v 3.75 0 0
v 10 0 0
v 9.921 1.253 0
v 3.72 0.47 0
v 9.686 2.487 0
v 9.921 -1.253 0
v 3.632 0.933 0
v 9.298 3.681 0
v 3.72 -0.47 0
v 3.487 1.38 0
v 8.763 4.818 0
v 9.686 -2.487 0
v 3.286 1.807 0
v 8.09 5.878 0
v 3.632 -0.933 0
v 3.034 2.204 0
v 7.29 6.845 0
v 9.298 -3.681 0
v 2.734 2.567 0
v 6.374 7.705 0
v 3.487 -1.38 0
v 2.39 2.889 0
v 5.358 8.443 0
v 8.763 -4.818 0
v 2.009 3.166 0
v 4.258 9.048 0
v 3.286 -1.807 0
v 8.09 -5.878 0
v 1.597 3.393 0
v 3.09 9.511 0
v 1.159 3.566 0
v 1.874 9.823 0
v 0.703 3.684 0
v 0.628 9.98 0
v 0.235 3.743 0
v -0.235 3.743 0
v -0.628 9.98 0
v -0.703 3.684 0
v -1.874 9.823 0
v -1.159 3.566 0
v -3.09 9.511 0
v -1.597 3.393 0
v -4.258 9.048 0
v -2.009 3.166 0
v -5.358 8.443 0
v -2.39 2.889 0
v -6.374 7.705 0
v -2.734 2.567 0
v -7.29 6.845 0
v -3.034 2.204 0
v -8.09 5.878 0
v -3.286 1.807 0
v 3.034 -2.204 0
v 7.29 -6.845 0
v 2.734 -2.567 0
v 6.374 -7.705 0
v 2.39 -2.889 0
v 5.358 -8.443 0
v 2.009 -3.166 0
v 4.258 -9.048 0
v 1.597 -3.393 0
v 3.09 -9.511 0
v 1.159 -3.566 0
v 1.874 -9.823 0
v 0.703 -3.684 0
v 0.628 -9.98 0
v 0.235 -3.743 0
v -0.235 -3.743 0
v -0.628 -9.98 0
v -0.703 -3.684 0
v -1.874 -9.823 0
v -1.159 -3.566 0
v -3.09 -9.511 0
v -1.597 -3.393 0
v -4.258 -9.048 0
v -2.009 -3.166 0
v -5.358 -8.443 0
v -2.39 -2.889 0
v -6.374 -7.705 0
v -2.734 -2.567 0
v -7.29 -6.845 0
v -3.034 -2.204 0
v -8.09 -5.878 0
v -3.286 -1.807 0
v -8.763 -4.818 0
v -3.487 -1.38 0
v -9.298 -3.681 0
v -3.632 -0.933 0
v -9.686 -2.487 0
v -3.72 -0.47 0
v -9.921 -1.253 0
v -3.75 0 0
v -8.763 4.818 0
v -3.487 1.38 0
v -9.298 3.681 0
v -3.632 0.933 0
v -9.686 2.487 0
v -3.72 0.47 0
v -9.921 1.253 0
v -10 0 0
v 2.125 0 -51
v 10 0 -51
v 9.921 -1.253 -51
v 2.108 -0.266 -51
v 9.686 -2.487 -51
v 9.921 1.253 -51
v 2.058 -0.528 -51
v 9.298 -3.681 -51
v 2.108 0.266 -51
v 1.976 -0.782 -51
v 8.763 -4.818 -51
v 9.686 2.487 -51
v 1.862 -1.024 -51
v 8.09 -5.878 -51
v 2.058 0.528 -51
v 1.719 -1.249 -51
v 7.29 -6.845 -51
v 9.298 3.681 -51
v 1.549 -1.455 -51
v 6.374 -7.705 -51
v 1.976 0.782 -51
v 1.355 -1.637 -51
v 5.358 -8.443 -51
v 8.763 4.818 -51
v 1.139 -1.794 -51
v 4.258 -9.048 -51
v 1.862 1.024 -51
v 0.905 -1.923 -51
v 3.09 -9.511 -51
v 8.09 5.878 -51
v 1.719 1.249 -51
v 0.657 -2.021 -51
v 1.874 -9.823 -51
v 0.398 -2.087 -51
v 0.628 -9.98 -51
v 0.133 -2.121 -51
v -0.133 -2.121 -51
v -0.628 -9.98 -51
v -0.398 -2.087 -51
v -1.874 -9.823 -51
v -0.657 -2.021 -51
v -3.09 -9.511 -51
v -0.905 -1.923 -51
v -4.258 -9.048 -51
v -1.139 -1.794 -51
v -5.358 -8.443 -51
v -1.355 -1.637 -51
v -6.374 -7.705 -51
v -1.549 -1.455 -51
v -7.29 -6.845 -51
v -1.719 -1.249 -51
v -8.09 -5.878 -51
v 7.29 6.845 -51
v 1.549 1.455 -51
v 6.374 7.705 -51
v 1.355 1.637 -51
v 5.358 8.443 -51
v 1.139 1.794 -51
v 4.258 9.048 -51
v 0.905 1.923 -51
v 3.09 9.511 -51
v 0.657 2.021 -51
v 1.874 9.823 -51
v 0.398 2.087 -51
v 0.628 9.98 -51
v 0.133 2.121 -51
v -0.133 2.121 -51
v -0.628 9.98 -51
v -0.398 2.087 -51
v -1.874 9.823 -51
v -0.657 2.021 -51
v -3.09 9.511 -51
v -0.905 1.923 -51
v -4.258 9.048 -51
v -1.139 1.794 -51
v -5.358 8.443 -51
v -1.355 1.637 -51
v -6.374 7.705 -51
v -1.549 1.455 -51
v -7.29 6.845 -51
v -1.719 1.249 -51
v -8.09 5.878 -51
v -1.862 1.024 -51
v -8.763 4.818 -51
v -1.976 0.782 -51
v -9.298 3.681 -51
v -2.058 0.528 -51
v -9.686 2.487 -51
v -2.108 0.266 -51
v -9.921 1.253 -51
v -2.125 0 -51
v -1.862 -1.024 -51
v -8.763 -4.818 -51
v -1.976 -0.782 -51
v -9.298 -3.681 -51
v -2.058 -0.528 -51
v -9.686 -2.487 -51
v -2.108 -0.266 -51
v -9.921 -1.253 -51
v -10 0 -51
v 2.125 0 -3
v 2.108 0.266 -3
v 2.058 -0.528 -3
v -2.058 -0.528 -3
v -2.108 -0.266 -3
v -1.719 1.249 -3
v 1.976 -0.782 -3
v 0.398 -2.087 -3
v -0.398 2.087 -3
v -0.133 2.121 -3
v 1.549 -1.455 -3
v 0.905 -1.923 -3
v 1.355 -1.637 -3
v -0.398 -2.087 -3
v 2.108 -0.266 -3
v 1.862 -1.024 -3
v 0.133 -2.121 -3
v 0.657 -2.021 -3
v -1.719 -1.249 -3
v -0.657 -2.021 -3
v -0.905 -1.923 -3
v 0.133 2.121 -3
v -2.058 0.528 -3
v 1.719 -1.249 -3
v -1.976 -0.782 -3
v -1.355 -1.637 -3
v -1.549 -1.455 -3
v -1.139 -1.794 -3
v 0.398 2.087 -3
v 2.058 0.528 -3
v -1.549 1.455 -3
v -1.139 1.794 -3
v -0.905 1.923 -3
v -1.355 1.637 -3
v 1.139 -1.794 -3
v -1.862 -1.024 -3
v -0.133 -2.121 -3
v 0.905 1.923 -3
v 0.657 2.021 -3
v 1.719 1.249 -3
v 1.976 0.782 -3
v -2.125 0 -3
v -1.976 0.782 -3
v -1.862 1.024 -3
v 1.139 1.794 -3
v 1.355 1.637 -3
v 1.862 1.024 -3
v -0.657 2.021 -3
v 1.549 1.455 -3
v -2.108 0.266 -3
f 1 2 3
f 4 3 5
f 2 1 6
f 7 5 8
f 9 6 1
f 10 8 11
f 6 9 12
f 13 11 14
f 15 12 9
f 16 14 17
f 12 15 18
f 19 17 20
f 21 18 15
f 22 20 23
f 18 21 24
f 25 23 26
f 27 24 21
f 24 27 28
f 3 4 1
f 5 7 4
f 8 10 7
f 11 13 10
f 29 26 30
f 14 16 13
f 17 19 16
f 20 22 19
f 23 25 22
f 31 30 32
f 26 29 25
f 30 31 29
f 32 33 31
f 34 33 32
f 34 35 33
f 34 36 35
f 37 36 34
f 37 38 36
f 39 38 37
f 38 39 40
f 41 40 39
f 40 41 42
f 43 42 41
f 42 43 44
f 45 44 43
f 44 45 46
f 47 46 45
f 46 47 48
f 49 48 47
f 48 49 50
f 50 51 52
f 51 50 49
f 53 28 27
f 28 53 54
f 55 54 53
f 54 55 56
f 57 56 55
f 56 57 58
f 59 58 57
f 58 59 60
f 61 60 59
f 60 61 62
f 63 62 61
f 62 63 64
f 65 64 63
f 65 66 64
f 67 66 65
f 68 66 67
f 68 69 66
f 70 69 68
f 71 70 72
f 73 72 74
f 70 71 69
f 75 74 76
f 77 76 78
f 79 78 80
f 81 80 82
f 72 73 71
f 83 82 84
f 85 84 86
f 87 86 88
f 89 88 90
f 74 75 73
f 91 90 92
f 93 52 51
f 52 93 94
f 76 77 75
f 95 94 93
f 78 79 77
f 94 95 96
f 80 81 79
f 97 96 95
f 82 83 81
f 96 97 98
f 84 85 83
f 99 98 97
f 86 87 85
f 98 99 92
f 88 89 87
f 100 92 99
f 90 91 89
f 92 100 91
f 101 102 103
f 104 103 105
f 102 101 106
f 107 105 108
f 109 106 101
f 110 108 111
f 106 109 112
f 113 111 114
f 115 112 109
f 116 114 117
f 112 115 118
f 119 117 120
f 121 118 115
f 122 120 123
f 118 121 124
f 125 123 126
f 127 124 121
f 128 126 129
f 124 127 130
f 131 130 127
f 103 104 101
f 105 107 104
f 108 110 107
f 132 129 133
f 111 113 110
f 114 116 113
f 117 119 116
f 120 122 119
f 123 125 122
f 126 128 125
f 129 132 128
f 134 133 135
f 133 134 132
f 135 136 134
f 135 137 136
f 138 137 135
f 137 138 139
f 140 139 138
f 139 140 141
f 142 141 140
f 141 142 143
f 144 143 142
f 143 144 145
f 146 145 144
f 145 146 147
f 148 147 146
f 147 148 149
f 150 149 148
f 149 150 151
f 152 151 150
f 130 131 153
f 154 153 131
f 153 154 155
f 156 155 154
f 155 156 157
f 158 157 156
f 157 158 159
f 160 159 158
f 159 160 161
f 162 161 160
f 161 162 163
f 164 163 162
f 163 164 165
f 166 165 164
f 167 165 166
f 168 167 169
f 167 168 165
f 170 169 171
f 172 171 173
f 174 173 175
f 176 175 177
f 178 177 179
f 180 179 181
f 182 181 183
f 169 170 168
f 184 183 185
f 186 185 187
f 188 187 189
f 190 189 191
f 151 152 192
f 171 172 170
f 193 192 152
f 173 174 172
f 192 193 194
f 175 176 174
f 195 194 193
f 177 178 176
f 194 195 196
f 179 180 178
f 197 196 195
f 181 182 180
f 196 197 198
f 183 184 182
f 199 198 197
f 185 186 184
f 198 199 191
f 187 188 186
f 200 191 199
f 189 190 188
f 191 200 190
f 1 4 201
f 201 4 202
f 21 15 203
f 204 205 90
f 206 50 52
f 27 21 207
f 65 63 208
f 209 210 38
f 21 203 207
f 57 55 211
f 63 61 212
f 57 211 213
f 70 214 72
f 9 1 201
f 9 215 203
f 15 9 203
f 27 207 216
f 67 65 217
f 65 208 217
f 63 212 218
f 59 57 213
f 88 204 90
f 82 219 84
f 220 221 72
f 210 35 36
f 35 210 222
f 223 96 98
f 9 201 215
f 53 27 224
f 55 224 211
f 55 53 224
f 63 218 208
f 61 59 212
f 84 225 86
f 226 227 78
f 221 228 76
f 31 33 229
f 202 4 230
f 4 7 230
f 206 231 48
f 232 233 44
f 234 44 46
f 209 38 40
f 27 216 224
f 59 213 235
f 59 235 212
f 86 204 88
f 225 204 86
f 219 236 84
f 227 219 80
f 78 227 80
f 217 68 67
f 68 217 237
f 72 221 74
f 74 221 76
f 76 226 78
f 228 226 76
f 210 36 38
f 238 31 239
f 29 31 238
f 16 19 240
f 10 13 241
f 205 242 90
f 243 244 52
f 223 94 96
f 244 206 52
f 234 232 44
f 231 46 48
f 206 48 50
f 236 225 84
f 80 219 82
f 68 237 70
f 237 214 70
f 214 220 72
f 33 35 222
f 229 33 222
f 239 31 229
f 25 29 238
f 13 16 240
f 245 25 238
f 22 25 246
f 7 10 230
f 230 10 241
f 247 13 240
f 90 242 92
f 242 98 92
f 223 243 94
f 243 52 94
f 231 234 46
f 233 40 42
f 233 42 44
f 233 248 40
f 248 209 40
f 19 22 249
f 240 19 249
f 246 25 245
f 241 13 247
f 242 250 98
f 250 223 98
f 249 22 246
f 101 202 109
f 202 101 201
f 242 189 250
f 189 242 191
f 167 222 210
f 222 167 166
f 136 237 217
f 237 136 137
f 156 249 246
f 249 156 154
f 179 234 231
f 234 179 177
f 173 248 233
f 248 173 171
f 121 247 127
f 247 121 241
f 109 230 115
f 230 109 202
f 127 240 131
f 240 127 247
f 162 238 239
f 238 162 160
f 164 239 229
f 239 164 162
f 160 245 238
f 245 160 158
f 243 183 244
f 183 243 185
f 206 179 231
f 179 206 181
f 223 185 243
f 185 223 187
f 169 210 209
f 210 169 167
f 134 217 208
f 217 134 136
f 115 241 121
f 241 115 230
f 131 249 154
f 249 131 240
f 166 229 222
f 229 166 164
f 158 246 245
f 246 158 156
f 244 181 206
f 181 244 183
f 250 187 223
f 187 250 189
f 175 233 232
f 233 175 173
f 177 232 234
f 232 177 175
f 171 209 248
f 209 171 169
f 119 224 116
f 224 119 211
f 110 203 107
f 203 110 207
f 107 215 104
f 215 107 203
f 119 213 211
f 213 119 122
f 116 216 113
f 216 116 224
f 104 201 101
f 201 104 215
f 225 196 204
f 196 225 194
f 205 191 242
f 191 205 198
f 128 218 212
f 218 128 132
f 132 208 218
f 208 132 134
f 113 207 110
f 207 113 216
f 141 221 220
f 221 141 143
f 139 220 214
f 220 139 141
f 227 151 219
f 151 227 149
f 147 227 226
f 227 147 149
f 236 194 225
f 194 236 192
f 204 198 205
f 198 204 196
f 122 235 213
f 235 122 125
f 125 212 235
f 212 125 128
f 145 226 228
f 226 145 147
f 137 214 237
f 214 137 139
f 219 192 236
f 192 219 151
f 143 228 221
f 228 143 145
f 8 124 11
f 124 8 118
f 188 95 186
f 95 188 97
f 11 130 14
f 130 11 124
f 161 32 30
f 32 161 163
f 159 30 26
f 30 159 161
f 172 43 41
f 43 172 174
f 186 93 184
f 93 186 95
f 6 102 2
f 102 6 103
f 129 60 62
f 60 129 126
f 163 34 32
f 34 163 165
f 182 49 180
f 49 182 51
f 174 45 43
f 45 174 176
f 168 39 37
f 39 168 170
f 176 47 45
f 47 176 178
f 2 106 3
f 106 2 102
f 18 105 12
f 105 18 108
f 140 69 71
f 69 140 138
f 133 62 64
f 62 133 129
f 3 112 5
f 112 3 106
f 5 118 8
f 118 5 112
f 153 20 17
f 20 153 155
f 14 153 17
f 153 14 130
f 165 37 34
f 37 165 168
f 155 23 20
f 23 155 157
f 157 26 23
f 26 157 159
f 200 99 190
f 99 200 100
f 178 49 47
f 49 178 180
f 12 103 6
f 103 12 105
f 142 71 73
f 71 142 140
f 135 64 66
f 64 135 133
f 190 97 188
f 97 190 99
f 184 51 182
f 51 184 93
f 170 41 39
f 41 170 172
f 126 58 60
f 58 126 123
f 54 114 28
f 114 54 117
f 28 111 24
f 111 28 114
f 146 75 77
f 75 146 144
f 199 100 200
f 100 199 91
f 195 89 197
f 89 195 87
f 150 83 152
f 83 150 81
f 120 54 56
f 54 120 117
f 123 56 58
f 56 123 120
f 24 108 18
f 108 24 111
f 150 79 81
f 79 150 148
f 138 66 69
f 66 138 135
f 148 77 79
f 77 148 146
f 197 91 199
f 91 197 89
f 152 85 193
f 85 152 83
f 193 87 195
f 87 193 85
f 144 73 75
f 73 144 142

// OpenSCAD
$fn = 50;


difference() {
	union() {
		translate(v = [0, 0, -51.0000000000]) {
			cylinder(h = 51, r = 10.0000000000);
		}
		cylinder(h = 0, r = 13.0000000000);
	}
	union() {
		translate(v = [0, 0, 0]) {
			rotate(a = [0, 0, 0]) {
				difference() {
					union() {
						#translate(v = [0, 0, -51.0000000000]) {
							cylinder(h = 51, r = 2.0000000000);
						}
						#translate(v = [0, 0, -3]) {
							cylinder(h = 3, r1 = 2.1250000000, r2 = 3.7500000000);
						}
						#translate(v = [0, 0, -51.0000000000]) {
							cylinder(h = 51, r = 2.1250000000);
						}
						#translate(v = [0, 0, -51.0000000000]) {
							cylinder(h = 51, r = 2.0000000000);
						}
					}
					union();
				}
			}
		}
	}
}
